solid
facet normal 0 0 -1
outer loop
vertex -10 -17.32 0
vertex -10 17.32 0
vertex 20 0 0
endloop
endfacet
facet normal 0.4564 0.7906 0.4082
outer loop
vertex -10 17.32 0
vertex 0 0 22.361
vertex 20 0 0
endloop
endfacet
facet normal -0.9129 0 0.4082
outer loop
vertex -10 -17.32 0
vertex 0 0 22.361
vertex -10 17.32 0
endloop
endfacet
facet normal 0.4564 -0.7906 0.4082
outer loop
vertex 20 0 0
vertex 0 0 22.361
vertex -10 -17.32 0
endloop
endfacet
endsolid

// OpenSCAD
a = 20;
polyhedron(
    points = [
        [a, 0, 0], // 0
        [-sin(30)*a, cos(30)*a, 0], // 1
        [-sin(30)*a, -cos(30)*a, 0], // 2
        [0, 0, sqrt(5)*a/2] // 3
    ],
    faces = [
        [0, 1, 2], // bottom
        [0, 3, 1],
        [1, 3, 2],
        [2, 3, 0]
    ]
);
